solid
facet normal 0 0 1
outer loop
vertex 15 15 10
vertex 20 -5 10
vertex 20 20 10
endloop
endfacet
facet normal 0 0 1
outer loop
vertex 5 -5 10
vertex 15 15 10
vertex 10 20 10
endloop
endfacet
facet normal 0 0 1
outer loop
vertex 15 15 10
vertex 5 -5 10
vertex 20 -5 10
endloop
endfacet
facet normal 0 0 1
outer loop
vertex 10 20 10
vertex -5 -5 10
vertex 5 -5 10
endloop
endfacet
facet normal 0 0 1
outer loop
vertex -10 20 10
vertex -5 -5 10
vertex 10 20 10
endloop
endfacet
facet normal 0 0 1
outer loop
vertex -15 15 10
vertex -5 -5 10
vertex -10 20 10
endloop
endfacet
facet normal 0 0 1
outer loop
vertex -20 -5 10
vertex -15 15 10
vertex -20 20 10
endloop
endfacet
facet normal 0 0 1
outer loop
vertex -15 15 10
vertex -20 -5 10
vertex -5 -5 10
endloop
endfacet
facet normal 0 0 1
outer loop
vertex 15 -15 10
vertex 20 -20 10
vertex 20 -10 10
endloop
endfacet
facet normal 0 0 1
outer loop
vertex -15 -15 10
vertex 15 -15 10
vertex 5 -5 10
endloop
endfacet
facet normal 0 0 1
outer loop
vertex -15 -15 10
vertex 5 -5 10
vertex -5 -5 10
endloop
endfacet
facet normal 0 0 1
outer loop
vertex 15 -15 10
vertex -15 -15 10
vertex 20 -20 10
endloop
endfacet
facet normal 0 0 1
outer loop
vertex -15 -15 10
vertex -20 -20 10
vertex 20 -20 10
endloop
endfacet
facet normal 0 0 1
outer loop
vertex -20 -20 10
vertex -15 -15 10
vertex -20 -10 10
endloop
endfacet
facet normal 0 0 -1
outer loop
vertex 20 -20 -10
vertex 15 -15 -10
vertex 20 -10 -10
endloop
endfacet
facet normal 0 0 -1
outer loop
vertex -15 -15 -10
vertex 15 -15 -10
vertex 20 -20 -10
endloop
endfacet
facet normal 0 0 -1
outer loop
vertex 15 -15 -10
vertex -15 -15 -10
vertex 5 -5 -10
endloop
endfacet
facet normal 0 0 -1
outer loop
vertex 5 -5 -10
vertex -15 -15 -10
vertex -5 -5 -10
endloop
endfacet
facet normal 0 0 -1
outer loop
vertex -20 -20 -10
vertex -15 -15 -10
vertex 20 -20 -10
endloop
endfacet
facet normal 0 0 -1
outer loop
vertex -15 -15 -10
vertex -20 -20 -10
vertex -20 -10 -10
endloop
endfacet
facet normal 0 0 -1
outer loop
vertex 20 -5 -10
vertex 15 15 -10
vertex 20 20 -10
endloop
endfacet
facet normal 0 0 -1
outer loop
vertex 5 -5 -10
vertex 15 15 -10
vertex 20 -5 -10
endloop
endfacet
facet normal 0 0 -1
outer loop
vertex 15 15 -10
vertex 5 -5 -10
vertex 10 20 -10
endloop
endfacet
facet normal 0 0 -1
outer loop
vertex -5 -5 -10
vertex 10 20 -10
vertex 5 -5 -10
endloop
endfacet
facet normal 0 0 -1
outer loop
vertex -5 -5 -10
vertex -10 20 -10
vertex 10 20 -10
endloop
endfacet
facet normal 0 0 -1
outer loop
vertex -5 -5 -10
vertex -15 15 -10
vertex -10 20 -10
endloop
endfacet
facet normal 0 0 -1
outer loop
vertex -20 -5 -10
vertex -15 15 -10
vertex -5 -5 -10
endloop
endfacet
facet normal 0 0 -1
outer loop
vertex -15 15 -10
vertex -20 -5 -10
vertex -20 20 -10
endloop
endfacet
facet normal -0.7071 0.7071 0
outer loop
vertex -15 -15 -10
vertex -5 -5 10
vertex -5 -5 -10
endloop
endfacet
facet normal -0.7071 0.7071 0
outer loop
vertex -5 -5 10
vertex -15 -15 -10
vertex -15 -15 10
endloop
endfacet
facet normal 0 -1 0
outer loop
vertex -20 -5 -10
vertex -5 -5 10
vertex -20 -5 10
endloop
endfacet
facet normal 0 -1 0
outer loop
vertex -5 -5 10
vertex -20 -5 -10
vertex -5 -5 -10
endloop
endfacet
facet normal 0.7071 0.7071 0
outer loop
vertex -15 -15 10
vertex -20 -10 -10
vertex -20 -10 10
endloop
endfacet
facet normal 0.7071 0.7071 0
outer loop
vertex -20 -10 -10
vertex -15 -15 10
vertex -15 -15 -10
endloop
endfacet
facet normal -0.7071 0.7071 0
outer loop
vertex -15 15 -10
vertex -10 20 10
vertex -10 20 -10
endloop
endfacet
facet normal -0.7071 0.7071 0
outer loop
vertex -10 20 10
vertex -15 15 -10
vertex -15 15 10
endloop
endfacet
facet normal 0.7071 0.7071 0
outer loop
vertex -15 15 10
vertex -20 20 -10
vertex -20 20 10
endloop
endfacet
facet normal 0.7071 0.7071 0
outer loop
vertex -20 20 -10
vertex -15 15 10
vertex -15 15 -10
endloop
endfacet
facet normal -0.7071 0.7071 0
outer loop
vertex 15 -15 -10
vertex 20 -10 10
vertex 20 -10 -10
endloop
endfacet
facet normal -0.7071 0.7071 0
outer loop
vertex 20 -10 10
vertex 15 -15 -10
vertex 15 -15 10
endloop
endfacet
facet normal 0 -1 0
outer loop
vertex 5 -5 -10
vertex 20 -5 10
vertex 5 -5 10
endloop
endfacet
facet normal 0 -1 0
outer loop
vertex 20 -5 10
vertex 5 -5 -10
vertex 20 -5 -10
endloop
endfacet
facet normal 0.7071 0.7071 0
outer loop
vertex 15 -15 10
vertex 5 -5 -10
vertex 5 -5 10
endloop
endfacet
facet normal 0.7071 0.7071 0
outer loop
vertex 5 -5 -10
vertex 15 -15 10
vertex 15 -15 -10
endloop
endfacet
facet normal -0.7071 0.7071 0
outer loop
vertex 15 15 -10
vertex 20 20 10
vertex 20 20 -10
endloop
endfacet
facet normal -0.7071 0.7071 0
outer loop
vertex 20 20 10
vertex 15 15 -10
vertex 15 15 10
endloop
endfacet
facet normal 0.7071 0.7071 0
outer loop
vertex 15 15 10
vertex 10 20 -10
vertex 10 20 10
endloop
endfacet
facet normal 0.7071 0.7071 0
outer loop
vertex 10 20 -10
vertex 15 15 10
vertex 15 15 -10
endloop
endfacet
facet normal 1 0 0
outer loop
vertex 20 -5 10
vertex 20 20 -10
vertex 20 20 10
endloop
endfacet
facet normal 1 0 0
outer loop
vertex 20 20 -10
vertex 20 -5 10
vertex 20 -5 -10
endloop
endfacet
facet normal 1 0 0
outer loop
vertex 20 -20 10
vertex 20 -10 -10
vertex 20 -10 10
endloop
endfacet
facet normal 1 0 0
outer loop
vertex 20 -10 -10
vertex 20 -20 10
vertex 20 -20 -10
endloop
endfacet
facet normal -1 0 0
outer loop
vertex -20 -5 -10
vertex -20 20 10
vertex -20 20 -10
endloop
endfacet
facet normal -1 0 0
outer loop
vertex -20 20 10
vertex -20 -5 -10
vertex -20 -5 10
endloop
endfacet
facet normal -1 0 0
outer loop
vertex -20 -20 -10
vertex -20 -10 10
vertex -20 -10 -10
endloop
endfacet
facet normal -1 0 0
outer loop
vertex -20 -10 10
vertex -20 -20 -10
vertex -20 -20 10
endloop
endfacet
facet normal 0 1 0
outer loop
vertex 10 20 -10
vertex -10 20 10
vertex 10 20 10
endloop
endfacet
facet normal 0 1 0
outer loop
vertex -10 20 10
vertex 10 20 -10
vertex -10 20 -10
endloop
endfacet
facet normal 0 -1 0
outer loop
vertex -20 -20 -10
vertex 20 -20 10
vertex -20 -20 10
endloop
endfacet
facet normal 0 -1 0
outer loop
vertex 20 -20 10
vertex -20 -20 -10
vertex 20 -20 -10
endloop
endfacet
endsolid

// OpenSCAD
module pyramid_holes(){
    for(x = [-15, 15], y = [-15, 15]) {
        translate([x, y, 0])
        rotate([180, 0, 0])  // Inverted pyramid
        linear_extrude(height = 20, convexity = 10, center = true)
        polygon(points=[[0, 0], [10, -10], [-10, -10]]);
    }
}

difference(){
    // Base solid cube
    cube([40, 40, 20], center = true);
    // Pyramidal indentations
    pyramid_holes();
}
